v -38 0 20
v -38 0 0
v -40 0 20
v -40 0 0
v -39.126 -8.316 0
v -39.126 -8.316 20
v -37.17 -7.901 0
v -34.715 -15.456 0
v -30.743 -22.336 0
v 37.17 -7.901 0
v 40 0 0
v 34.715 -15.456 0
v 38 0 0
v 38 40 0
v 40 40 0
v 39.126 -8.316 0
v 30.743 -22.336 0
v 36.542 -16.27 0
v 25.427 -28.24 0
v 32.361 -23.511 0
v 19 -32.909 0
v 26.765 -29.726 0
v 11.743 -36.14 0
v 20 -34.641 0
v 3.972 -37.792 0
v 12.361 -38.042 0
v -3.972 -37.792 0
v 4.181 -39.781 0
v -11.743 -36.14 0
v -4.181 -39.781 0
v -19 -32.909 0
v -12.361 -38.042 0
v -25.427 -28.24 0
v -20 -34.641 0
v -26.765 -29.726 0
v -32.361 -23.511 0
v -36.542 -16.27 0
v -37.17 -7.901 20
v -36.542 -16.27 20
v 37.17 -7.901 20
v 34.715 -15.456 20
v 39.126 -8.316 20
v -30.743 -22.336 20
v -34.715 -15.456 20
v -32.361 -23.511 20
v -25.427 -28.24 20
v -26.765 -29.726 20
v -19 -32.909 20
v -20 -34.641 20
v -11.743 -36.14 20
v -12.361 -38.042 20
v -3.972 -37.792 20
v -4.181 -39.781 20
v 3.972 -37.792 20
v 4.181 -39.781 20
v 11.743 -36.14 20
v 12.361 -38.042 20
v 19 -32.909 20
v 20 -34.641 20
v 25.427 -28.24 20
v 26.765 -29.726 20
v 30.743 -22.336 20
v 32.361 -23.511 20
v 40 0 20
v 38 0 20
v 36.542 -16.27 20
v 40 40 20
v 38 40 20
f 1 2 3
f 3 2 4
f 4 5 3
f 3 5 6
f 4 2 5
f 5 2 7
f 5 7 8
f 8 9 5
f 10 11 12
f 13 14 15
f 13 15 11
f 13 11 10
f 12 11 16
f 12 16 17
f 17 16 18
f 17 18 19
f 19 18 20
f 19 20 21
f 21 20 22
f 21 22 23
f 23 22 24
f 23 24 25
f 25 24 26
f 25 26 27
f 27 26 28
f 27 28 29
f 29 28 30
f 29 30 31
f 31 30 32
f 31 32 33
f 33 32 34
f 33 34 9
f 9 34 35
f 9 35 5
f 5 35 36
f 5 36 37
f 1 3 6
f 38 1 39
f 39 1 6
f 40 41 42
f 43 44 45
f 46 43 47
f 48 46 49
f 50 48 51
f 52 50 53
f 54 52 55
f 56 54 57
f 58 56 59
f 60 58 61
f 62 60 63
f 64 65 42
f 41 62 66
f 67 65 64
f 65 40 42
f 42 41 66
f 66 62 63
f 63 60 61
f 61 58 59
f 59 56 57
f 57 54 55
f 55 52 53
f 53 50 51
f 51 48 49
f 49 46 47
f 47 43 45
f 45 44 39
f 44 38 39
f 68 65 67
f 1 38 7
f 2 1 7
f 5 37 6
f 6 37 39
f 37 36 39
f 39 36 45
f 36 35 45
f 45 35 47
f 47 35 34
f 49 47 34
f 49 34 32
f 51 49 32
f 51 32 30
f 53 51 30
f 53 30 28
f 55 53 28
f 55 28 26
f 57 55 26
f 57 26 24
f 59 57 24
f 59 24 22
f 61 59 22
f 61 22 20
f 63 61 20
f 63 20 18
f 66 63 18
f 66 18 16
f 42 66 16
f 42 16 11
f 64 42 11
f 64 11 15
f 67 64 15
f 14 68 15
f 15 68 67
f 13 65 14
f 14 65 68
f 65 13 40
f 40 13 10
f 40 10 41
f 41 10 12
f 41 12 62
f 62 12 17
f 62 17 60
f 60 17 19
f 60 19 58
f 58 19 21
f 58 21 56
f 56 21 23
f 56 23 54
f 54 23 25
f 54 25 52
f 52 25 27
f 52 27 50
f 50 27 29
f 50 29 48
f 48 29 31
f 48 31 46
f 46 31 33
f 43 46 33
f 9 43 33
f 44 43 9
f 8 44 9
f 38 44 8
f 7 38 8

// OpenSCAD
radius = 40;
thickness = 2;
height = 20;
length = 40;

difference() {
	cylinder(height, r=radius);
	cylinder(height, r=radius - thickness);
	translate([-radius, 0, 0]) cube([2 * radius, 2 * radius, height]);
}


translate([radius - thickness, 0, 0]) cube([thickness, length, height]);
